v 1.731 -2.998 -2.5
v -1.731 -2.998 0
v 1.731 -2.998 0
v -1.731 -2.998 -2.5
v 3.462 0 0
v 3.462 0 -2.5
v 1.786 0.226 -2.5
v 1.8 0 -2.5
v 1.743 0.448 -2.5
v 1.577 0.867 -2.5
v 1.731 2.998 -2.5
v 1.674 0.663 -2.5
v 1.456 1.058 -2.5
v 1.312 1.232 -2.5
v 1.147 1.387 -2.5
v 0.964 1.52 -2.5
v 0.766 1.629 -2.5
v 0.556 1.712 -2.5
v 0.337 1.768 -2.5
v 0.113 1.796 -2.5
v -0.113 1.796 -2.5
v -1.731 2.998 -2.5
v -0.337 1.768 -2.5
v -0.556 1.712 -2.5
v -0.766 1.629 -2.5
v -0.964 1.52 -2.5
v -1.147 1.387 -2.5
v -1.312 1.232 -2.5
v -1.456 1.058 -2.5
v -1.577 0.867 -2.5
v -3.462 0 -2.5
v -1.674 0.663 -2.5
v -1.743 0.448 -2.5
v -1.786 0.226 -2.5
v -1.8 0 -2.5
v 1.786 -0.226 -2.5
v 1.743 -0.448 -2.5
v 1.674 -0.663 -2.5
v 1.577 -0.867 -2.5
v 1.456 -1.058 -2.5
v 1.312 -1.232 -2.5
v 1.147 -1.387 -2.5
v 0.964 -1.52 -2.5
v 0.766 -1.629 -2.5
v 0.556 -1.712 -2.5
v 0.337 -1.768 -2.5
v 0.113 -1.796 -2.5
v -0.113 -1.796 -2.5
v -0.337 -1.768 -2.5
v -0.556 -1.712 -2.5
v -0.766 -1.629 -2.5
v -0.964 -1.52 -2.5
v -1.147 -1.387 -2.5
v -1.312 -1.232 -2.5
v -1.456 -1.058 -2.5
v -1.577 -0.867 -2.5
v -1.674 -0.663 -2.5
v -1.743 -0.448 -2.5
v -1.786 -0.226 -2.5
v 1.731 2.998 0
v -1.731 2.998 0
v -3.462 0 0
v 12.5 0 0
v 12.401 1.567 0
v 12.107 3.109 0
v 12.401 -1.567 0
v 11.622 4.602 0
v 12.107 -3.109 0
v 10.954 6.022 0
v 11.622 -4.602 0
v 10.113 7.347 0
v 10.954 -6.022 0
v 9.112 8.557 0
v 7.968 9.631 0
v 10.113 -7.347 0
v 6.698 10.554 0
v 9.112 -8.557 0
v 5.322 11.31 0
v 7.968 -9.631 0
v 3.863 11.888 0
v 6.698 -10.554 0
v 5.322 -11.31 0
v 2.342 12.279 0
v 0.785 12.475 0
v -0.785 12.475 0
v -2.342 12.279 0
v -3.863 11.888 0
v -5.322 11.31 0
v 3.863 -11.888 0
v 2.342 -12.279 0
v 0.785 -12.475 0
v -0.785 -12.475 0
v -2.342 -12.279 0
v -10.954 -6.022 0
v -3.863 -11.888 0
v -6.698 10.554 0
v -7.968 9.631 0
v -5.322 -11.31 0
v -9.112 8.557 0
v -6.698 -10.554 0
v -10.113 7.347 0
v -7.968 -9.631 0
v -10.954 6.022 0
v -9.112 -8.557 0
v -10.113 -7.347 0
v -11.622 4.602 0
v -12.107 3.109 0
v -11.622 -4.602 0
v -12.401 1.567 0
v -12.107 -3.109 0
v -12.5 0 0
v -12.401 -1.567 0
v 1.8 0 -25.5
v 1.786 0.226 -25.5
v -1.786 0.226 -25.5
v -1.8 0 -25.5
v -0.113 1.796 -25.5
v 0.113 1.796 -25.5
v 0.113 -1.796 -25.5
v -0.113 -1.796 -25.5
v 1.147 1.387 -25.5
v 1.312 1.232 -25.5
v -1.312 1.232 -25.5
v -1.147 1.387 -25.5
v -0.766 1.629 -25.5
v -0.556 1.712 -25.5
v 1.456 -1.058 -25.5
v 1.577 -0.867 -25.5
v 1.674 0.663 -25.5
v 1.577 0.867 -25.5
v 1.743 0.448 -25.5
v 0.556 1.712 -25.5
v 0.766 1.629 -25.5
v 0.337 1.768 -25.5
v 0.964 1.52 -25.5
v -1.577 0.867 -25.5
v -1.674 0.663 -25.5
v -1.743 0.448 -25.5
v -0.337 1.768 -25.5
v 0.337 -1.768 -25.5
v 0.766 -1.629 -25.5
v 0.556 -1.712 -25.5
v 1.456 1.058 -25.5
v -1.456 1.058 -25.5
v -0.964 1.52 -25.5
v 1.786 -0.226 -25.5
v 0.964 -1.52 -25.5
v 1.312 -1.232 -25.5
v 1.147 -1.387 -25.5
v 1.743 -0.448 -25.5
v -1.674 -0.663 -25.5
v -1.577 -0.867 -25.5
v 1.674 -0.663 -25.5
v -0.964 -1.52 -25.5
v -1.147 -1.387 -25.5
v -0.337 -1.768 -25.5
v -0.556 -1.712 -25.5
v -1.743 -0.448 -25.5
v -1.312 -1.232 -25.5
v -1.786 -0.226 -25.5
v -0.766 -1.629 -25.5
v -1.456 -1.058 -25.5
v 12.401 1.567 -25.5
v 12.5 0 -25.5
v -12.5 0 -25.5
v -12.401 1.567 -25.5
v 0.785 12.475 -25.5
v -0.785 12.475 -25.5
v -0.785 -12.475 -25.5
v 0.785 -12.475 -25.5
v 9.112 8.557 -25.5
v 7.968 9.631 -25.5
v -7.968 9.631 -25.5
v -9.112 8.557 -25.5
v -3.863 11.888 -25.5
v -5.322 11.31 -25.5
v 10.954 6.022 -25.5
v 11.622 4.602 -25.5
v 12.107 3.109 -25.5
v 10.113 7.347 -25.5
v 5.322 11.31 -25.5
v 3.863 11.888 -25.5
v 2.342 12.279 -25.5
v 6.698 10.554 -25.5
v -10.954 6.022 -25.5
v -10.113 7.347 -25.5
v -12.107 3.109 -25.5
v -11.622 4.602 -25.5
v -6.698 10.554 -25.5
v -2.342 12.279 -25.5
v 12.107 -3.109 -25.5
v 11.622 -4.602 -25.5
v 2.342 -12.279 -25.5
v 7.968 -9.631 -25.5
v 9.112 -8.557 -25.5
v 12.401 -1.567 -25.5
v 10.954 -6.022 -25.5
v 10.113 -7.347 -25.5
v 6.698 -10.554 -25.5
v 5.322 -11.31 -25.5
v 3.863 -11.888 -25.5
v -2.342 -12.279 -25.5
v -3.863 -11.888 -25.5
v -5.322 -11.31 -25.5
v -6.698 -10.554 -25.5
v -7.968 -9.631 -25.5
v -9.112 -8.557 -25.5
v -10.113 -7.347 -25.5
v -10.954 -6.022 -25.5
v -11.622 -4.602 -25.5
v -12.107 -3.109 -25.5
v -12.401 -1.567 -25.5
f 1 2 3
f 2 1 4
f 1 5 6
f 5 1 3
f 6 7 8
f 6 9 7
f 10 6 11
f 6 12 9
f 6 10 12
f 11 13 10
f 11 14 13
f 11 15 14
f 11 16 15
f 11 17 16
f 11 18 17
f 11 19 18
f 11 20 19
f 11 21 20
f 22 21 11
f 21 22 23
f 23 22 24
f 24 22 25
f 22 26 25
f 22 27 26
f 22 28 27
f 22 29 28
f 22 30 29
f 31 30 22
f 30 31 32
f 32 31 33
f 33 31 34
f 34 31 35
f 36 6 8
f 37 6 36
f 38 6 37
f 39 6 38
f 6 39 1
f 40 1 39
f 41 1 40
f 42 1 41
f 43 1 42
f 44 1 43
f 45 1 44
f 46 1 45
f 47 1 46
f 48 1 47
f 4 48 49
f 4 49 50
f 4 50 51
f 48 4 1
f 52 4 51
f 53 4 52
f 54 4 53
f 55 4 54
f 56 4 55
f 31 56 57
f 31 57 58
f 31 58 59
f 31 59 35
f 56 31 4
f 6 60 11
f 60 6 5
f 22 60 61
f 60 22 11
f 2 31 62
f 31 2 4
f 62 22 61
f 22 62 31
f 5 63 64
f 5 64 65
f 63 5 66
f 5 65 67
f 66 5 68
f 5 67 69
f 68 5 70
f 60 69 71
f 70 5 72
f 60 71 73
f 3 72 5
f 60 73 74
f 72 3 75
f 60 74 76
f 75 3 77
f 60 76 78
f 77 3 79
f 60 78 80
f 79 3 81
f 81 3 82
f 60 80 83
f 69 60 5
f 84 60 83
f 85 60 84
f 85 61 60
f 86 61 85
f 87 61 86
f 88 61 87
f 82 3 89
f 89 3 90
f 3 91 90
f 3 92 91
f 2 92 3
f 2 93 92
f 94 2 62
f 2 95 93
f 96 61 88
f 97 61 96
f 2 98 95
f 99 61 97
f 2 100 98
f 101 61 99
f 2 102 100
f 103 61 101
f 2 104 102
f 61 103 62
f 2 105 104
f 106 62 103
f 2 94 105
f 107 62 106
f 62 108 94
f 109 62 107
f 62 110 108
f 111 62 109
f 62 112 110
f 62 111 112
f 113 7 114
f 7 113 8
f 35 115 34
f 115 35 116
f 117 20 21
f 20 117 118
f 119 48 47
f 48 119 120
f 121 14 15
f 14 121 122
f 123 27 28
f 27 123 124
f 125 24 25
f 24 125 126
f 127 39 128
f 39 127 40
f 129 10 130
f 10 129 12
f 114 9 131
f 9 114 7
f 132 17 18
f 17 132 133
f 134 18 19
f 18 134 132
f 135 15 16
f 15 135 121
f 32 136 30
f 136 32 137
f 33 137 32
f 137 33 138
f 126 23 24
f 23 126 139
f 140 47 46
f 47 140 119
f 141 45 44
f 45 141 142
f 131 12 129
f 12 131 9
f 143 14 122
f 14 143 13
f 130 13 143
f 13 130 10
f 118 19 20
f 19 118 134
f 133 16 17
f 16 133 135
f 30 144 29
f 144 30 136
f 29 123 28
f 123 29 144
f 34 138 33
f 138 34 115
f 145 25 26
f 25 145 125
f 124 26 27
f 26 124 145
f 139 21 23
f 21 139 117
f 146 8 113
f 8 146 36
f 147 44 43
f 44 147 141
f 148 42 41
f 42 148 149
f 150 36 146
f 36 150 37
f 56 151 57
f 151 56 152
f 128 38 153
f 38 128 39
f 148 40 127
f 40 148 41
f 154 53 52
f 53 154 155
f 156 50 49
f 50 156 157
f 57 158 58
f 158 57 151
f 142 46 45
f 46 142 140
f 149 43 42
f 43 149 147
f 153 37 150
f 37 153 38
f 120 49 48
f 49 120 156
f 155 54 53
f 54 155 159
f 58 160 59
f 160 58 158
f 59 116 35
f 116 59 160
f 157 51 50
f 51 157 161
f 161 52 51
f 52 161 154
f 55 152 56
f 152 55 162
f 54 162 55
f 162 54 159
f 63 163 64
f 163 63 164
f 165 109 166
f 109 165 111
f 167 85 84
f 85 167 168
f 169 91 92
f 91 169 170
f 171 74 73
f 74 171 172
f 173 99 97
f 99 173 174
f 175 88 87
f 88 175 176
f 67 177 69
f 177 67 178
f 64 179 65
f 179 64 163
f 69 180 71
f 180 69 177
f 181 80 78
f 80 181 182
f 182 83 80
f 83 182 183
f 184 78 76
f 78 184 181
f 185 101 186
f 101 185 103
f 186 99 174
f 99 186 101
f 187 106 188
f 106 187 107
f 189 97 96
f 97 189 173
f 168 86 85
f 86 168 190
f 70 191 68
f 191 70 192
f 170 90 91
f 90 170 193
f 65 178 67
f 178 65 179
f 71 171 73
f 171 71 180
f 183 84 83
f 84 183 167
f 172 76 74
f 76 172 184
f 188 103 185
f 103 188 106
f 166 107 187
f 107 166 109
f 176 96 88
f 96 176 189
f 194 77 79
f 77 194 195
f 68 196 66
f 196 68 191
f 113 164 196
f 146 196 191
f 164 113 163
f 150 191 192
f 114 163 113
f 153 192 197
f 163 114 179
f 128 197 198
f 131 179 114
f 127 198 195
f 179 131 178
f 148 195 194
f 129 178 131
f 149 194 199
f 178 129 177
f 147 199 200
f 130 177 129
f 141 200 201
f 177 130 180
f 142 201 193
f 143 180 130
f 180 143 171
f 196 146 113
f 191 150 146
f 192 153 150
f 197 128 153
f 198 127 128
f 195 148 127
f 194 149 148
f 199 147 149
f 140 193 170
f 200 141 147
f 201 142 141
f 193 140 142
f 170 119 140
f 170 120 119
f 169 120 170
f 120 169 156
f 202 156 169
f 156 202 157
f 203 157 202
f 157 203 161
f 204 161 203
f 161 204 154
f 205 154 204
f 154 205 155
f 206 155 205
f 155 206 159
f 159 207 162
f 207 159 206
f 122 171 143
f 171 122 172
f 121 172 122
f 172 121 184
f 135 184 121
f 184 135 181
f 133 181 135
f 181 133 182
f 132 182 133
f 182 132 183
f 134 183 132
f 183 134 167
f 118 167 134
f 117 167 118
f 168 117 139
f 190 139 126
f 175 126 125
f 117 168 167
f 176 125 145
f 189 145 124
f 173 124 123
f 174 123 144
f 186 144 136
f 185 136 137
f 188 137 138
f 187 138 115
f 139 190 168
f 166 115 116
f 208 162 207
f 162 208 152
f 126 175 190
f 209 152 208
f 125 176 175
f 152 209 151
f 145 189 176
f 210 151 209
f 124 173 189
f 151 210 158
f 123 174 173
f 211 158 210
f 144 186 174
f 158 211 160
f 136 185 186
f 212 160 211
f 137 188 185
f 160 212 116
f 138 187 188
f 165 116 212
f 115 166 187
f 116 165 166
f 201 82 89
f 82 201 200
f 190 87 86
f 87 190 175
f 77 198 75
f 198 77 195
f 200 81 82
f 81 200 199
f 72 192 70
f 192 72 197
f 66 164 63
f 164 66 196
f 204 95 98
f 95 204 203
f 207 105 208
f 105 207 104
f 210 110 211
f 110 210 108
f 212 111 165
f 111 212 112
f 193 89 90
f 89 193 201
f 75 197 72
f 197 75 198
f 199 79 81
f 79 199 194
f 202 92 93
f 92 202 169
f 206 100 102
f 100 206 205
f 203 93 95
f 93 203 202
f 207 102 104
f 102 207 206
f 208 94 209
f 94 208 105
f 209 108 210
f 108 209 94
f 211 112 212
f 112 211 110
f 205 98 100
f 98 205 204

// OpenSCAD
$fn = 50;

difference() {
	union() {
		translate(v = [0, 0, -25.5]) {
			cylinder(h = 25.5, r = 12.5);
		}
	}
	union() {
		translate(v = [0, 0, 0]) {
			rotate(a = [0, 0, 0]) {
				difference() {
					union() {
						translate(v = [0, 0, -2.5]) {
							linear_extrude(height = 2.5) {
								polygon(points = [[3.4619999999999997, 0.0], [1.7310000000000003, 2.9981799479017264], [-1.7309999999999992, 2.9981799479017264], [-3.4619999999999997, 4.2397272186481365e-16], [-1.7310000000000014, -2.998179947901726], [1.7309999999999977, -2.9981799479017277]]);
							}
						}
					}
					union();
				}
			}
		}
		#translate(v = [0, 0, -100.0]) {
			cylinder(h = 200, r = 1.8);
		}
	}
}
